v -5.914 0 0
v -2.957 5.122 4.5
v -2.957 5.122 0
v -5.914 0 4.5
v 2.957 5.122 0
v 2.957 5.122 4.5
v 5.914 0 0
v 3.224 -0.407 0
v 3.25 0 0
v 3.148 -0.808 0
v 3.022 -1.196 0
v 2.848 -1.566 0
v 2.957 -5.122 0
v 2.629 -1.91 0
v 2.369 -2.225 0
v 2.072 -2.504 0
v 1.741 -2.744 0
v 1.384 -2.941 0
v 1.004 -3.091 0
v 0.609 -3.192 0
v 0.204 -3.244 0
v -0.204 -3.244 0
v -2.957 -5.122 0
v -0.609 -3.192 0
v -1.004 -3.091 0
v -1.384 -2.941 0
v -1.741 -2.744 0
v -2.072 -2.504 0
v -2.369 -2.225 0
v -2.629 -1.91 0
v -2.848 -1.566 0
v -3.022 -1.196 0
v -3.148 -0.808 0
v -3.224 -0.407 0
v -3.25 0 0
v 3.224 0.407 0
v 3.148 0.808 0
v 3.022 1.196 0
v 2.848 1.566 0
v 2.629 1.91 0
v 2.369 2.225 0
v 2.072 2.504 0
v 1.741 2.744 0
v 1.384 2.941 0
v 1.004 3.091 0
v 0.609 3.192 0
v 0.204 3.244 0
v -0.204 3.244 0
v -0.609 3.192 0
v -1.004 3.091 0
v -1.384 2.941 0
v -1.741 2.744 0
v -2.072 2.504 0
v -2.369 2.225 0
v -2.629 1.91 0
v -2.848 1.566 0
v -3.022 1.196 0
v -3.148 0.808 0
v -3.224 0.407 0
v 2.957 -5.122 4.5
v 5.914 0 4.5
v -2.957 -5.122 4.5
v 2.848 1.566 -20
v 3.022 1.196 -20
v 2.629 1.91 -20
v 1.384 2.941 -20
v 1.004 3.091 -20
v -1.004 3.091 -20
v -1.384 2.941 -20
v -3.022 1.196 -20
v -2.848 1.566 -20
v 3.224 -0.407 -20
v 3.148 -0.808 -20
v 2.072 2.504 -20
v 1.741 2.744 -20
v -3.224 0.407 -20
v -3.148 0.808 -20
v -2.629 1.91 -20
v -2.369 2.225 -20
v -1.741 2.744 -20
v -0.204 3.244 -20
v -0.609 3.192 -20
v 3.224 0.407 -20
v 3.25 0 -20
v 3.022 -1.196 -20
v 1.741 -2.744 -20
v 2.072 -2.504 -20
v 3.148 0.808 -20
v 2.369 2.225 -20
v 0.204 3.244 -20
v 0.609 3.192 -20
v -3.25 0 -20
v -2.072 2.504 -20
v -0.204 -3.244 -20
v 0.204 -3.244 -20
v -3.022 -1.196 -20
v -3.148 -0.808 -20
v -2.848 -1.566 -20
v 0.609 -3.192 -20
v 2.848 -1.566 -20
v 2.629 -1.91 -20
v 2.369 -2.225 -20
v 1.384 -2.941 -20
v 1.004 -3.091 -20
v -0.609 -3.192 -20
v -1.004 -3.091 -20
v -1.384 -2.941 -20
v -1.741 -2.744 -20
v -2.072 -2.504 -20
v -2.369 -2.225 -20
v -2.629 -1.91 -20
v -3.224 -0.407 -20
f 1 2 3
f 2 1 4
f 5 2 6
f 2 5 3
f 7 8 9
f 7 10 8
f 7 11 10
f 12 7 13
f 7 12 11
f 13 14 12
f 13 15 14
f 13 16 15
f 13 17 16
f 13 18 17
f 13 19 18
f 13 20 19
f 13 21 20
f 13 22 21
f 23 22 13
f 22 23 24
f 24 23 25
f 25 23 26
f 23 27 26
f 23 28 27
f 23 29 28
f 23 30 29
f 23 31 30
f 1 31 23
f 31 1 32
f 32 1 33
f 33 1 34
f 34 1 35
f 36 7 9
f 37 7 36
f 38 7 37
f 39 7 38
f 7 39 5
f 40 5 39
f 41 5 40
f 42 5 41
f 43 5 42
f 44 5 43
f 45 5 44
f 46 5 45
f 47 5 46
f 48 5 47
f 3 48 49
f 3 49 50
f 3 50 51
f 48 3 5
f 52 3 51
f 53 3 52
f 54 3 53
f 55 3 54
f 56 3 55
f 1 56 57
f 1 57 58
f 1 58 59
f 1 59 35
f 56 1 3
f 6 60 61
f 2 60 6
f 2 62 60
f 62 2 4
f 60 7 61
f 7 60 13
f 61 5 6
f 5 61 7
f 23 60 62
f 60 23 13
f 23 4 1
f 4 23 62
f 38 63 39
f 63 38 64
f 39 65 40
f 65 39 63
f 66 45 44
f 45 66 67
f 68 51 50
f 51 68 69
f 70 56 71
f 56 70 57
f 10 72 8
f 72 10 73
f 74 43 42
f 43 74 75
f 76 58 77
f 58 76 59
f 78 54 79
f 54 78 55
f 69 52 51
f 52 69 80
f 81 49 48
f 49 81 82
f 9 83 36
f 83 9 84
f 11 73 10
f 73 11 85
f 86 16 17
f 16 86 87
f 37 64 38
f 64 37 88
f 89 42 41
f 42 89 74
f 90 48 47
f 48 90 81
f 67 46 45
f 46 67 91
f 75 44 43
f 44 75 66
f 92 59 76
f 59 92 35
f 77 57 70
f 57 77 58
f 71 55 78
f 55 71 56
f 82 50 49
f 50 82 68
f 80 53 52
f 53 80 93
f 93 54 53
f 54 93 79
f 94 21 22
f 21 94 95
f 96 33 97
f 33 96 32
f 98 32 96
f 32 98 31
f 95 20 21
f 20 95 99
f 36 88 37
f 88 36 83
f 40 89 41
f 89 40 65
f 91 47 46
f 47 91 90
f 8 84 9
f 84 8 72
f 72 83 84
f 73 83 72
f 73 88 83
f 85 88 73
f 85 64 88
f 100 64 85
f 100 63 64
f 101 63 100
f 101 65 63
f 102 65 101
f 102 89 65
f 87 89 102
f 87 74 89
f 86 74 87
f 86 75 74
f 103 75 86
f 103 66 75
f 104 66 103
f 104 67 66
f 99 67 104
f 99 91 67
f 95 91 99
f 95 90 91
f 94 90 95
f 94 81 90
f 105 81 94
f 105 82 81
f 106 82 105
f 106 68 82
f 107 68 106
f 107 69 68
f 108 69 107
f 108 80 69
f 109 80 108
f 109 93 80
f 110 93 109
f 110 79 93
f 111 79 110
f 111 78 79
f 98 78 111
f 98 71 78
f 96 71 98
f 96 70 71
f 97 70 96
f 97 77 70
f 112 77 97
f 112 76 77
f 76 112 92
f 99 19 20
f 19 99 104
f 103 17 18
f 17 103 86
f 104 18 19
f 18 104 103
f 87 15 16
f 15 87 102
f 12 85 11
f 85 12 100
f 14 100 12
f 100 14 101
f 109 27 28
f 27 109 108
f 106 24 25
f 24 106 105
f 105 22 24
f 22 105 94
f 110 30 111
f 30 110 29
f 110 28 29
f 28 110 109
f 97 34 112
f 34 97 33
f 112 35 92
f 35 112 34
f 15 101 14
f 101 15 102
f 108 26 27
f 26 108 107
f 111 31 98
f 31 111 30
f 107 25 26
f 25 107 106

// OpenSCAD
$fn = 50;


difference() {
	union() {
		translate(v = [0, 0, 0]) {
			rotate(a = [0, 0, 0]) {
				translate(v = [0, 0, 0]) {
					rotate(a = [0, 0, 0]) {
						linear_extrude(height = 4.5000000000) {
							polygon(points = [[5.9142500000, 0.0000000000], [2.9571250000, 5.1218907443], [-2.9571250000, 5.1218907443], [-5.9142500000, 0.0000000000], [-2.9571250000, -5.1218907443], [2.9571250000, -5.1218907443]]);
						}
					}
				}
			}
		}
		translate(v = [0, 0, -20]) {
			rotate(a = [0, 0, 0]) {
				cylinder(h = 20, r = 3.2500000000);
			}
		}
	}
	union();
}
